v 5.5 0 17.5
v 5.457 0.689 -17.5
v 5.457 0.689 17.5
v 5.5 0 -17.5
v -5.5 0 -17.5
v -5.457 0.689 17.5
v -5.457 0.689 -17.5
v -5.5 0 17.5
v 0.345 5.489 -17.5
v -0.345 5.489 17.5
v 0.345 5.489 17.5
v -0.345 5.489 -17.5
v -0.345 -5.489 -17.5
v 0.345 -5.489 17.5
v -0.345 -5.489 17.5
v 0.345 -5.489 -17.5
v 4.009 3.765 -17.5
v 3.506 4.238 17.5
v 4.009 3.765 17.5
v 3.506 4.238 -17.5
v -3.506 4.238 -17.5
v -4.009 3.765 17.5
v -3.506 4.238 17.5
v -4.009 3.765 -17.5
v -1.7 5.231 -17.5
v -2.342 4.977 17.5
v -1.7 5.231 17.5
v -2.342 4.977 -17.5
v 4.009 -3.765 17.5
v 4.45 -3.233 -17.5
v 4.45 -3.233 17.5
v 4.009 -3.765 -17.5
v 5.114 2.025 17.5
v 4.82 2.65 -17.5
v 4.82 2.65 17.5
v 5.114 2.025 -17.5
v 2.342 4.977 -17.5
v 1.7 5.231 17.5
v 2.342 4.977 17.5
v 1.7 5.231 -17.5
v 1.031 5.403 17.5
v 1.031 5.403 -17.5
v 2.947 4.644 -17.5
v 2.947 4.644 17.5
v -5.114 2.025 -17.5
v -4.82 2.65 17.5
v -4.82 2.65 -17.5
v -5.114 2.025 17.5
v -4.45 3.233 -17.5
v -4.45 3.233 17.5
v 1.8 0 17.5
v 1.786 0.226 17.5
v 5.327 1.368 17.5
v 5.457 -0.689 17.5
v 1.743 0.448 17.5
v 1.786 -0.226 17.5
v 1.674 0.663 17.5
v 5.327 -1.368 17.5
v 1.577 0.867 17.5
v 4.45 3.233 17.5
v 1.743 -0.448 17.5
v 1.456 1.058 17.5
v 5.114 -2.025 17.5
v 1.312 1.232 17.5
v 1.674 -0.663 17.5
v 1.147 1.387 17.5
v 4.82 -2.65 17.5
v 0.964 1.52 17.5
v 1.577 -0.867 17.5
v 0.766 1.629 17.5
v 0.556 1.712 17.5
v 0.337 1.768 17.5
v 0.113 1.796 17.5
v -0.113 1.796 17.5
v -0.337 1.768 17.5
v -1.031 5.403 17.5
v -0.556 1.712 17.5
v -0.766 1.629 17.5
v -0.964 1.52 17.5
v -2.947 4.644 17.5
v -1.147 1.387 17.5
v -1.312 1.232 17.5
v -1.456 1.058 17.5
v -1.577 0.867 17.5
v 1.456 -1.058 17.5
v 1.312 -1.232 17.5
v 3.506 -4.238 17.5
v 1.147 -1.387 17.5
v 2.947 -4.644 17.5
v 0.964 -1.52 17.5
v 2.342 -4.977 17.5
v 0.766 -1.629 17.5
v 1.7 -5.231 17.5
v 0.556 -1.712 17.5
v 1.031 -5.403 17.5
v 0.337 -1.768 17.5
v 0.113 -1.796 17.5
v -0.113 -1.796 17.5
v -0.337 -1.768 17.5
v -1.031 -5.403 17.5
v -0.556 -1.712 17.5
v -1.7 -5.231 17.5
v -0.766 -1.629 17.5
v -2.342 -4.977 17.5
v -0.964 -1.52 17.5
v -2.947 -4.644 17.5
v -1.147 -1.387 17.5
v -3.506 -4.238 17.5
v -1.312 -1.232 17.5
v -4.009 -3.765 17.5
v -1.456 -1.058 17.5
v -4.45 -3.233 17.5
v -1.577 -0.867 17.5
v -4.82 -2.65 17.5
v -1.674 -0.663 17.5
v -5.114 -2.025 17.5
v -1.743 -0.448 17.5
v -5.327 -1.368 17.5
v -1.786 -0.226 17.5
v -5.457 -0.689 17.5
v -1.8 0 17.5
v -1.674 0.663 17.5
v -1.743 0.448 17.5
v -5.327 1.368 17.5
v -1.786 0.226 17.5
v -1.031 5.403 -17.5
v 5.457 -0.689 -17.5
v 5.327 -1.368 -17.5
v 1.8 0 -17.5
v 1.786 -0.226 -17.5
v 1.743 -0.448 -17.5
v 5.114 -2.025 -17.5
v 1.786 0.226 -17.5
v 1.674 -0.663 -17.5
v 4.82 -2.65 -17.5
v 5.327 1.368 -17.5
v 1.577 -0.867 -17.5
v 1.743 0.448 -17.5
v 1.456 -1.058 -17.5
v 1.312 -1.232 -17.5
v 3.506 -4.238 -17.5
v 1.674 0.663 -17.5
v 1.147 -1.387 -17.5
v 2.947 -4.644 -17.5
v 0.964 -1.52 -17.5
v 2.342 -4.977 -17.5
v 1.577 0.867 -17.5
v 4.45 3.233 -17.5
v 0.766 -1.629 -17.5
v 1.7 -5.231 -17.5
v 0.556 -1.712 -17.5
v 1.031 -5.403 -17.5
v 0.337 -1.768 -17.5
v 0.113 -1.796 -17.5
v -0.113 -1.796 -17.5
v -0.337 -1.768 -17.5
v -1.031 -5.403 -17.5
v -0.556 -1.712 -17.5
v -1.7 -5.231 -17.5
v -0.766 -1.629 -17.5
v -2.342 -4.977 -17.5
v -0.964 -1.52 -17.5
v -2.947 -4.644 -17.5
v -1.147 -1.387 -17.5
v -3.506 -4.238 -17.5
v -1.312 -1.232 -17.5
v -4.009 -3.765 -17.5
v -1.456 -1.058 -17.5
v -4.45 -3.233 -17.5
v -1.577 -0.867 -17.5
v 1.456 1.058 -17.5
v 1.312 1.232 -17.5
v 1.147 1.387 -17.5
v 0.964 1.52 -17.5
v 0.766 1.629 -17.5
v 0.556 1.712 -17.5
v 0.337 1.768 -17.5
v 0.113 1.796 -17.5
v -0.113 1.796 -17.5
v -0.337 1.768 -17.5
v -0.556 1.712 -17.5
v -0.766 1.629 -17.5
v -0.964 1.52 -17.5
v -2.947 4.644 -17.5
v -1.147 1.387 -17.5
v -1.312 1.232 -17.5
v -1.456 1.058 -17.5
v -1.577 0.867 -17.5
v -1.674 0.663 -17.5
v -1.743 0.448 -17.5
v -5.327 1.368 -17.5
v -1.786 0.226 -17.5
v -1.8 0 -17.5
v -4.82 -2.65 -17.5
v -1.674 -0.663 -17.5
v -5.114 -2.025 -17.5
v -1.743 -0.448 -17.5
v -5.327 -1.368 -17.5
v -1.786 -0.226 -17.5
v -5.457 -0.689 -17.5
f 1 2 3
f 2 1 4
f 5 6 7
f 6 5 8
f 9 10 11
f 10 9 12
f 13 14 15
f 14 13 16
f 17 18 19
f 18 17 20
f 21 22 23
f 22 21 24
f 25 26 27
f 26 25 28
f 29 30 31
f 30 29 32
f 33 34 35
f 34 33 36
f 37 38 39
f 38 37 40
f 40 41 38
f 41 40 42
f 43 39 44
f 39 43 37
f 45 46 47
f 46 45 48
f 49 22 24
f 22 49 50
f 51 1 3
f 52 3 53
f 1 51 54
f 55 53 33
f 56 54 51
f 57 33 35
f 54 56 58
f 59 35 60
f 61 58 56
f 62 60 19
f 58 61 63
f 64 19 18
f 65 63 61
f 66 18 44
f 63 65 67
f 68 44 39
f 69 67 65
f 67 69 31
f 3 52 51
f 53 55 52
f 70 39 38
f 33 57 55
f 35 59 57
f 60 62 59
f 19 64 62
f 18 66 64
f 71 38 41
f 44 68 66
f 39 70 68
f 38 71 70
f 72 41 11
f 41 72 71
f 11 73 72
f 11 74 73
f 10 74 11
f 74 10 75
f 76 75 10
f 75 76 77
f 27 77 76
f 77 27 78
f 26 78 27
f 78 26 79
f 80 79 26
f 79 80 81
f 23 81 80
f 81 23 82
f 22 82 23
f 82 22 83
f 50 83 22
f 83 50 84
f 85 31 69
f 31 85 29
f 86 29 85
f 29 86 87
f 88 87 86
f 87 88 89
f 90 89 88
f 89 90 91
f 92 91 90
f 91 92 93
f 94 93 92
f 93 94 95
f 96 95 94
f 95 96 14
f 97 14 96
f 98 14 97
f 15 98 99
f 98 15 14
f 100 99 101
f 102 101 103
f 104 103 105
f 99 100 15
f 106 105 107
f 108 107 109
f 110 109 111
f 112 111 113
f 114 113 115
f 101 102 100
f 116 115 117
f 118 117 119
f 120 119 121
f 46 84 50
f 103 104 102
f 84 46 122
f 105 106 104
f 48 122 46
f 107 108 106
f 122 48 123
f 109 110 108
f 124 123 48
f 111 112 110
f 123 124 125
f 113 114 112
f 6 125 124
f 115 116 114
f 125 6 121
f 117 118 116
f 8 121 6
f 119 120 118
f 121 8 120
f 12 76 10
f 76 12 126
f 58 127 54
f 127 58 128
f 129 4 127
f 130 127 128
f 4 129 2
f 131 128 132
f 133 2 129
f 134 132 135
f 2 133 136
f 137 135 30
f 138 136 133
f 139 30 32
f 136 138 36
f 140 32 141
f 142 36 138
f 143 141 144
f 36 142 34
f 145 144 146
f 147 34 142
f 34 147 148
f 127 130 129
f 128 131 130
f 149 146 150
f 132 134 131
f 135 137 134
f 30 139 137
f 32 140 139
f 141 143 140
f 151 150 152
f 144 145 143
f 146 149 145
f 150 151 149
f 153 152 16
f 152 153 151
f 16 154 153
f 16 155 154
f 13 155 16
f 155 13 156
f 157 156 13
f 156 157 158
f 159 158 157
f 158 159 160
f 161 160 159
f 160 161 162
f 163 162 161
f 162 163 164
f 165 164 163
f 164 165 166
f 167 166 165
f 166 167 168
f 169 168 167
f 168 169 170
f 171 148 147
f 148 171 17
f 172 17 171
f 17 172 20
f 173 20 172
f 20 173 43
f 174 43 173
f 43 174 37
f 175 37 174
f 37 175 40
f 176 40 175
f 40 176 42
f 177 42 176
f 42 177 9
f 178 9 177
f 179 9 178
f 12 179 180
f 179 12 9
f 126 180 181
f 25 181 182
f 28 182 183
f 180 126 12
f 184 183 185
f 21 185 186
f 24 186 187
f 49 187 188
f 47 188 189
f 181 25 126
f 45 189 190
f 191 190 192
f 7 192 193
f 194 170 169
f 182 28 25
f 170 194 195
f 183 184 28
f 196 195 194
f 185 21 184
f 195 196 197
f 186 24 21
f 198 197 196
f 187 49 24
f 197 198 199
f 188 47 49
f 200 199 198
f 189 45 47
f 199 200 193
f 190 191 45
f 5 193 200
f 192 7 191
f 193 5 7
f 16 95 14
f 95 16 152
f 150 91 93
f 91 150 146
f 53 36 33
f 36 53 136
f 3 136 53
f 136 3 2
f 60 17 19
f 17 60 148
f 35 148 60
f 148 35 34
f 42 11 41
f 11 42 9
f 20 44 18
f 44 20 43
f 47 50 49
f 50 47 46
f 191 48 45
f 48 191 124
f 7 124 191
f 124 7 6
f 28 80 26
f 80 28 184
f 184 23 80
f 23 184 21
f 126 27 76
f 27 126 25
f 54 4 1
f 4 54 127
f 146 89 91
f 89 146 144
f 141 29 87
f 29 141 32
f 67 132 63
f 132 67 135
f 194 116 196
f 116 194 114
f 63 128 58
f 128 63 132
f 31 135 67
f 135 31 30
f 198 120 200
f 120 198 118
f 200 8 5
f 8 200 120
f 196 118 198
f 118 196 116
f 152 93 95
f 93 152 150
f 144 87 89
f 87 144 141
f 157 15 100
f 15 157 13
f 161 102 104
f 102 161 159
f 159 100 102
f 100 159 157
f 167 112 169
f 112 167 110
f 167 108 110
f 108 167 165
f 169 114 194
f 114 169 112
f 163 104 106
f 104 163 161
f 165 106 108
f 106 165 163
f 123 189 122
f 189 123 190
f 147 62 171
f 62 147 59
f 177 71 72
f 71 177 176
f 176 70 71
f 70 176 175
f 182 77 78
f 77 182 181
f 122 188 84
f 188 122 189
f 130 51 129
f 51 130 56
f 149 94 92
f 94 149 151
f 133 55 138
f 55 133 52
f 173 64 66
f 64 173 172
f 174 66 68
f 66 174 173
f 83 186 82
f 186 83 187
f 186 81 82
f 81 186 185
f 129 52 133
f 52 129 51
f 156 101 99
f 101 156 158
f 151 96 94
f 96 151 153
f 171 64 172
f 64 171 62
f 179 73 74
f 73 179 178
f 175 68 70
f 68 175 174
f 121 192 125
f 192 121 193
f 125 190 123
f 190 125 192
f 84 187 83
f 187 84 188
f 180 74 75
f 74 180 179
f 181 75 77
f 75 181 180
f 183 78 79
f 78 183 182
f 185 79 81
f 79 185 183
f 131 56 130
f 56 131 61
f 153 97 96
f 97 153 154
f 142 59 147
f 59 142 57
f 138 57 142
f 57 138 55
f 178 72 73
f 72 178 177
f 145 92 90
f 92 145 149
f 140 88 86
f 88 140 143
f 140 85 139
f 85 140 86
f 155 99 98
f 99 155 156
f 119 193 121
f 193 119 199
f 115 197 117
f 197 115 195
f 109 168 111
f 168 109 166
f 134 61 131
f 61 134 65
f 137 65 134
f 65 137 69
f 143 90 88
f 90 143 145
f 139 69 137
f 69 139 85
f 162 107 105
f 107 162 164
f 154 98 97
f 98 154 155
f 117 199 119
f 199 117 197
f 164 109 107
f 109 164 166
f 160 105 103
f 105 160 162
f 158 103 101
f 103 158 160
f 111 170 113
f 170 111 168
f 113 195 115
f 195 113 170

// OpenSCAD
$fn = 50;


difference() {
	union() {
		translate(v = [0, 0, -17.5000000000]) {
			cylinder(h = 35, r = 5.5000000000);
		}
	}
	union() {
		translate(v = [0, 0, -100.0000000000]) {
			cylinder(h = 200, r = 1.8000000000);
		}
	}
}
